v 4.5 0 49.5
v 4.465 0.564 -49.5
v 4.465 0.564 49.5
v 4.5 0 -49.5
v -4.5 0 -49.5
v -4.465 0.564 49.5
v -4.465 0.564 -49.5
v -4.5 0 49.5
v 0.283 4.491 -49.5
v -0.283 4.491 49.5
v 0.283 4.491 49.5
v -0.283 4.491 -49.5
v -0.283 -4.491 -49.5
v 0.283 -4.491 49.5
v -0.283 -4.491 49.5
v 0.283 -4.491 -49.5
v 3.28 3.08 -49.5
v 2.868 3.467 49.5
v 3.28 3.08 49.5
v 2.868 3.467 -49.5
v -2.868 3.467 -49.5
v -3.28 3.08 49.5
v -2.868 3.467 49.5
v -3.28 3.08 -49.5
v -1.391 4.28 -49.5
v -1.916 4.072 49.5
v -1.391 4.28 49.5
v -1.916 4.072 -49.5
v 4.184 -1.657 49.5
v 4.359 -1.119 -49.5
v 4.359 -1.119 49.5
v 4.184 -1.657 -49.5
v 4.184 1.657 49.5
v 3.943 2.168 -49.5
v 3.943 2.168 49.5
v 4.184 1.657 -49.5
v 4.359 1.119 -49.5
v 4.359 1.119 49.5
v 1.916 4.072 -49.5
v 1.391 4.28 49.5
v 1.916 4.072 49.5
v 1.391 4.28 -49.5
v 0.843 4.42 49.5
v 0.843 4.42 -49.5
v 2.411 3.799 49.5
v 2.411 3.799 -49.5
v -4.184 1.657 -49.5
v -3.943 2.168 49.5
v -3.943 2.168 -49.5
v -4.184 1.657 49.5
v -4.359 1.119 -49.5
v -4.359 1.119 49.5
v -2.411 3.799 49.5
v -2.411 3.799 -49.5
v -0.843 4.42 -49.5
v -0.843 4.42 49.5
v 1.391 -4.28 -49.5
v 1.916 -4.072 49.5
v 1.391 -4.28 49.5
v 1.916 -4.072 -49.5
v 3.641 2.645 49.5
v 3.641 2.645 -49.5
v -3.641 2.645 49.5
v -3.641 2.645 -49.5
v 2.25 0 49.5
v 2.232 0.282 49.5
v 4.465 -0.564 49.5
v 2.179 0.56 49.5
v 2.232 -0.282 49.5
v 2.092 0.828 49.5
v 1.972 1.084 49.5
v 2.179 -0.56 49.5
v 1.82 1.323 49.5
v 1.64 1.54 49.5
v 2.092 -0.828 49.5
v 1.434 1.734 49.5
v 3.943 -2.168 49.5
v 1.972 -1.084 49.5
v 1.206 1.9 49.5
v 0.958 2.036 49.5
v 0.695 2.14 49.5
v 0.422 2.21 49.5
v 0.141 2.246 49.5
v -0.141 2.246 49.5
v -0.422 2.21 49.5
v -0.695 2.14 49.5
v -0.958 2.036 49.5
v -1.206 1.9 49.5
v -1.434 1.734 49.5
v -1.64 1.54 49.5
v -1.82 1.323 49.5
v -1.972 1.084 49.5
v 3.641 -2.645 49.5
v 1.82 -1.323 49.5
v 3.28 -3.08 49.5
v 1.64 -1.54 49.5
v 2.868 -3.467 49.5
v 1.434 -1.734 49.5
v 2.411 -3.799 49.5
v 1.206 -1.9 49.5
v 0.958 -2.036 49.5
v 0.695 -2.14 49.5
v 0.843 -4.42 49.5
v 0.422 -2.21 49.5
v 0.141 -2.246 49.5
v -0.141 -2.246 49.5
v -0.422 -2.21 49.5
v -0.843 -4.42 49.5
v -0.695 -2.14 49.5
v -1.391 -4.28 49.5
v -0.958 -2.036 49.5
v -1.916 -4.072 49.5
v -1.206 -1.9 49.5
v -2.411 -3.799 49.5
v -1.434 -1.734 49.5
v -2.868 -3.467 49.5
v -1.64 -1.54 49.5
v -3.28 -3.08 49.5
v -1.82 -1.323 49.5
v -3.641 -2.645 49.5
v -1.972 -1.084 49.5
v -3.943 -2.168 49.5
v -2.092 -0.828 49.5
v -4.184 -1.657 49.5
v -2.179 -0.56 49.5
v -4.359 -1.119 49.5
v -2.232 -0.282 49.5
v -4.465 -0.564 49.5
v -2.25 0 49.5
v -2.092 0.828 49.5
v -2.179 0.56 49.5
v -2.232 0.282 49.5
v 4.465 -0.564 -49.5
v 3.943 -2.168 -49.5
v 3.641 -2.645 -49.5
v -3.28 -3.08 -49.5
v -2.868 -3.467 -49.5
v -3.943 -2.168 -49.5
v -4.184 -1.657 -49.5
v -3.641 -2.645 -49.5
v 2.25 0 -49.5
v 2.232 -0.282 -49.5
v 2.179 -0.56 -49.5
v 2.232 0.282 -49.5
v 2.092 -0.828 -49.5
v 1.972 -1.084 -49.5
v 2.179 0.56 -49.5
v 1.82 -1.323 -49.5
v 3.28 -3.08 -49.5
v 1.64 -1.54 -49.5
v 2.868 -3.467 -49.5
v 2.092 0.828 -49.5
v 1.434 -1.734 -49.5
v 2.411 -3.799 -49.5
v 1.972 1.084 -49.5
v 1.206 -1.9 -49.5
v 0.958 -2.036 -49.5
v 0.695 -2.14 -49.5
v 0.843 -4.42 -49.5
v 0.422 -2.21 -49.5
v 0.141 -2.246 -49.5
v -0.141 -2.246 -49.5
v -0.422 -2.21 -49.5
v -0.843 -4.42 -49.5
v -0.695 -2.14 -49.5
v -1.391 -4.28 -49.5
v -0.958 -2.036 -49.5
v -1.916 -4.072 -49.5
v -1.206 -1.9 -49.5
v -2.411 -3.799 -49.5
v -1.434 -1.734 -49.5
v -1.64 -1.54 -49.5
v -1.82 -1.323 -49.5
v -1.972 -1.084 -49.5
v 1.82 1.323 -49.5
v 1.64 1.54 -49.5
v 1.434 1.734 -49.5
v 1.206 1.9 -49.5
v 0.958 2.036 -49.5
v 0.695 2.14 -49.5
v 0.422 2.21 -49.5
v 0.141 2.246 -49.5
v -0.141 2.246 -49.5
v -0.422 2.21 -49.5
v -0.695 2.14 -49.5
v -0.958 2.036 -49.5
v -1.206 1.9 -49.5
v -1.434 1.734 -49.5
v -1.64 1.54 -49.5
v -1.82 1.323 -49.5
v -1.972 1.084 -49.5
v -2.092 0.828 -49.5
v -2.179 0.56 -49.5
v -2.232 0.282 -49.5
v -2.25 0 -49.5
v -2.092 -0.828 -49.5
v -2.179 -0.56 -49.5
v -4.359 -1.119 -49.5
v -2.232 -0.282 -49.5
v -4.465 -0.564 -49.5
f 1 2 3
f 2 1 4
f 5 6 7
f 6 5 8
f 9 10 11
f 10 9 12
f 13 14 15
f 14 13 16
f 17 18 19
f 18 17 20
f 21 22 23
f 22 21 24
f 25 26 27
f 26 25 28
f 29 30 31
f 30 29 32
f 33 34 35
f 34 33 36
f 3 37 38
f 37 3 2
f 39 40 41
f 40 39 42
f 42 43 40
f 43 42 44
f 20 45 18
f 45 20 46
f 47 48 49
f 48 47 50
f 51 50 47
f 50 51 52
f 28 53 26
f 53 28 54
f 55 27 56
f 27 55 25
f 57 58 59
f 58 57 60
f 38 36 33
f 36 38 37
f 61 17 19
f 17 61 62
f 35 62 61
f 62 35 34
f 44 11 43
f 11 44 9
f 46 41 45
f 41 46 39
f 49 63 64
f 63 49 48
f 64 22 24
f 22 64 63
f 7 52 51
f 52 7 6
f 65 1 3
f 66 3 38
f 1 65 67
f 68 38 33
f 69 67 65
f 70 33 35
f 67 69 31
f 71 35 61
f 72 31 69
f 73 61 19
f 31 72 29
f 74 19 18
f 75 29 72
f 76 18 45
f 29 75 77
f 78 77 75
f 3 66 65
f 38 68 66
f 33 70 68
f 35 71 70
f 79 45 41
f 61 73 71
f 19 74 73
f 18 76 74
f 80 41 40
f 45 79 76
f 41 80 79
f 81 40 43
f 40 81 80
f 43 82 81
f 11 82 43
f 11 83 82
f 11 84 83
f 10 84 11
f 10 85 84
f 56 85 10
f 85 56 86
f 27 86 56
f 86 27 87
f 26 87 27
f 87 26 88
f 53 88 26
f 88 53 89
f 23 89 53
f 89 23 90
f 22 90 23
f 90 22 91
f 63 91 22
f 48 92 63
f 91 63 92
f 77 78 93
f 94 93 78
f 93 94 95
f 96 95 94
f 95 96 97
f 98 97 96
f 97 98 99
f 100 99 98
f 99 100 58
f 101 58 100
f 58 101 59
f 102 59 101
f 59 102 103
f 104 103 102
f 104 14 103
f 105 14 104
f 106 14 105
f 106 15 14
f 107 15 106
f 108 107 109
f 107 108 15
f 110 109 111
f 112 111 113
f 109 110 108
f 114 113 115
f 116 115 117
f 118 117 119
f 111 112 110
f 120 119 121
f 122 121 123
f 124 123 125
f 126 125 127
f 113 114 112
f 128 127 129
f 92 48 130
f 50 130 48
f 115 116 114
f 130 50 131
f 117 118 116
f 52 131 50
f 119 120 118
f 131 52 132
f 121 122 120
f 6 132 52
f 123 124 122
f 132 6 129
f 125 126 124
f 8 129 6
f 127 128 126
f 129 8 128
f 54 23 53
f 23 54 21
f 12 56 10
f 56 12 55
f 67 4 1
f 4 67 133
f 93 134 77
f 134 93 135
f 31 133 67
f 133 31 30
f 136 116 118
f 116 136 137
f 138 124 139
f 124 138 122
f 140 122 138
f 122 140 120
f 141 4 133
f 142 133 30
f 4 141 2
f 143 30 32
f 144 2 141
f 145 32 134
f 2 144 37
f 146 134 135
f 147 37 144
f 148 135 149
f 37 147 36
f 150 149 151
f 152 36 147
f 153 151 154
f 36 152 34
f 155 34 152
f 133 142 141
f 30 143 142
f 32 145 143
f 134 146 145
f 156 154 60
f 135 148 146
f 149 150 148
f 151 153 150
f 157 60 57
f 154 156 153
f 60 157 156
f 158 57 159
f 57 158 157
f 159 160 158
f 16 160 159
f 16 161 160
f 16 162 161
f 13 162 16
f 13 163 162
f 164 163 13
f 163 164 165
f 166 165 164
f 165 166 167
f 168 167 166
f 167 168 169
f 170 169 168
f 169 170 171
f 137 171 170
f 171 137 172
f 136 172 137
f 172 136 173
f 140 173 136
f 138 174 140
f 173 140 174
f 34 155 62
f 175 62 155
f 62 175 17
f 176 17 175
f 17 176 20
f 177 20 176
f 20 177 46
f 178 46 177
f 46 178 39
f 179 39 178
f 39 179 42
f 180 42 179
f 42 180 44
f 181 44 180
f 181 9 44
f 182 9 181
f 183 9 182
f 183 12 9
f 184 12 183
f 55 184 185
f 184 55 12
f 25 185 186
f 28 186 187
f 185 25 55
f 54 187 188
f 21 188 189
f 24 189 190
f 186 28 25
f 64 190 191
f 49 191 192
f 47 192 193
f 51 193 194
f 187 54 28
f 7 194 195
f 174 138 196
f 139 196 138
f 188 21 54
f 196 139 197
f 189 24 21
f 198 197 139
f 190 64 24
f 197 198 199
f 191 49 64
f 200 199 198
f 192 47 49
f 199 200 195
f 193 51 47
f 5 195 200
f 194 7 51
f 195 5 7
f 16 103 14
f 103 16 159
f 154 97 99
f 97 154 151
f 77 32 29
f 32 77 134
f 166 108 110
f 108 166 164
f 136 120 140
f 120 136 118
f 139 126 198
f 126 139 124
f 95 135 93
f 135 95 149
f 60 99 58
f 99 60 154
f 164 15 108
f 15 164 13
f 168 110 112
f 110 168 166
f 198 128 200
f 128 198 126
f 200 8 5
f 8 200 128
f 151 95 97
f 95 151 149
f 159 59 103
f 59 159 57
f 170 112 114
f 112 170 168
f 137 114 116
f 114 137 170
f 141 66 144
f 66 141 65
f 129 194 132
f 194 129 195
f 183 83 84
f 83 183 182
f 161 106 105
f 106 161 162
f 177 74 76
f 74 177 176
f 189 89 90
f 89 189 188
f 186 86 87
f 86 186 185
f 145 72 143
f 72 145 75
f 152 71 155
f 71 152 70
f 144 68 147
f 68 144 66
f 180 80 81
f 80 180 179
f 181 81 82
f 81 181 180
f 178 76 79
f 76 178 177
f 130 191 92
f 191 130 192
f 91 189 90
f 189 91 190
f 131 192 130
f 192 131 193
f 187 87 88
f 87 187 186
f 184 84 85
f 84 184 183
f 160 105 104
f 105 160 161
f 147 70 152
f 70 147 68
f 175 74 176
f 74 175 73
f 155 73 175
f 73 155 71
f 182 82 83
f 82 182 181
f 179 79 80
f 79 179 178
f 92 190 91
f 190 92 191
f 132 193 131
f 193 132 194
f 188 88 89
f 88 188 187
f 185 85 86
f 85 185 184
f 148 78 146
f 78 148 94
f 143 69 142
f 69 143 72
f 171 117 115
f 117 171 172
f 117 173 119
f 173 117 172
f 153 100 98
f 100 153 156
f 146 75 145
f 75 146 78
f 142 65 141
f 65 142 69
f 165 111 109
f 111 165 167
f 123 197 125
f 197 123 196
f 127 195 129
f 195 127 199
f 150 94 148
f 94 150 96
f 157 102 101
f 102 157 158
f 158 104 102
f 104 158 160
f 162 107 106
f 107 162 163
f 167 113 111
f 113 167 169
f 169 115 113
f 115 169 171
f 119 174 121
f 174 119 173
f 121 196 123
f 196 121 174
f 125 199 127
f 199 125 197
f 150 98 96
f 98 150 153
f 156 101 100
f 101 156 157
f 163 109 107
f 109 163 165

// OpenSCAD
$fn = 50;


difference() {
	union() {
		translate(v = [0, 0, -49.5000000000]) {
			cylinder(h = 99, r = 4.5000000000);
		}
	}
	union() {
		translate(v = [0, 0, -100.0000000000]) {
			cylinder(h = 200, r = 2.2500000000);
		}
	}
}
